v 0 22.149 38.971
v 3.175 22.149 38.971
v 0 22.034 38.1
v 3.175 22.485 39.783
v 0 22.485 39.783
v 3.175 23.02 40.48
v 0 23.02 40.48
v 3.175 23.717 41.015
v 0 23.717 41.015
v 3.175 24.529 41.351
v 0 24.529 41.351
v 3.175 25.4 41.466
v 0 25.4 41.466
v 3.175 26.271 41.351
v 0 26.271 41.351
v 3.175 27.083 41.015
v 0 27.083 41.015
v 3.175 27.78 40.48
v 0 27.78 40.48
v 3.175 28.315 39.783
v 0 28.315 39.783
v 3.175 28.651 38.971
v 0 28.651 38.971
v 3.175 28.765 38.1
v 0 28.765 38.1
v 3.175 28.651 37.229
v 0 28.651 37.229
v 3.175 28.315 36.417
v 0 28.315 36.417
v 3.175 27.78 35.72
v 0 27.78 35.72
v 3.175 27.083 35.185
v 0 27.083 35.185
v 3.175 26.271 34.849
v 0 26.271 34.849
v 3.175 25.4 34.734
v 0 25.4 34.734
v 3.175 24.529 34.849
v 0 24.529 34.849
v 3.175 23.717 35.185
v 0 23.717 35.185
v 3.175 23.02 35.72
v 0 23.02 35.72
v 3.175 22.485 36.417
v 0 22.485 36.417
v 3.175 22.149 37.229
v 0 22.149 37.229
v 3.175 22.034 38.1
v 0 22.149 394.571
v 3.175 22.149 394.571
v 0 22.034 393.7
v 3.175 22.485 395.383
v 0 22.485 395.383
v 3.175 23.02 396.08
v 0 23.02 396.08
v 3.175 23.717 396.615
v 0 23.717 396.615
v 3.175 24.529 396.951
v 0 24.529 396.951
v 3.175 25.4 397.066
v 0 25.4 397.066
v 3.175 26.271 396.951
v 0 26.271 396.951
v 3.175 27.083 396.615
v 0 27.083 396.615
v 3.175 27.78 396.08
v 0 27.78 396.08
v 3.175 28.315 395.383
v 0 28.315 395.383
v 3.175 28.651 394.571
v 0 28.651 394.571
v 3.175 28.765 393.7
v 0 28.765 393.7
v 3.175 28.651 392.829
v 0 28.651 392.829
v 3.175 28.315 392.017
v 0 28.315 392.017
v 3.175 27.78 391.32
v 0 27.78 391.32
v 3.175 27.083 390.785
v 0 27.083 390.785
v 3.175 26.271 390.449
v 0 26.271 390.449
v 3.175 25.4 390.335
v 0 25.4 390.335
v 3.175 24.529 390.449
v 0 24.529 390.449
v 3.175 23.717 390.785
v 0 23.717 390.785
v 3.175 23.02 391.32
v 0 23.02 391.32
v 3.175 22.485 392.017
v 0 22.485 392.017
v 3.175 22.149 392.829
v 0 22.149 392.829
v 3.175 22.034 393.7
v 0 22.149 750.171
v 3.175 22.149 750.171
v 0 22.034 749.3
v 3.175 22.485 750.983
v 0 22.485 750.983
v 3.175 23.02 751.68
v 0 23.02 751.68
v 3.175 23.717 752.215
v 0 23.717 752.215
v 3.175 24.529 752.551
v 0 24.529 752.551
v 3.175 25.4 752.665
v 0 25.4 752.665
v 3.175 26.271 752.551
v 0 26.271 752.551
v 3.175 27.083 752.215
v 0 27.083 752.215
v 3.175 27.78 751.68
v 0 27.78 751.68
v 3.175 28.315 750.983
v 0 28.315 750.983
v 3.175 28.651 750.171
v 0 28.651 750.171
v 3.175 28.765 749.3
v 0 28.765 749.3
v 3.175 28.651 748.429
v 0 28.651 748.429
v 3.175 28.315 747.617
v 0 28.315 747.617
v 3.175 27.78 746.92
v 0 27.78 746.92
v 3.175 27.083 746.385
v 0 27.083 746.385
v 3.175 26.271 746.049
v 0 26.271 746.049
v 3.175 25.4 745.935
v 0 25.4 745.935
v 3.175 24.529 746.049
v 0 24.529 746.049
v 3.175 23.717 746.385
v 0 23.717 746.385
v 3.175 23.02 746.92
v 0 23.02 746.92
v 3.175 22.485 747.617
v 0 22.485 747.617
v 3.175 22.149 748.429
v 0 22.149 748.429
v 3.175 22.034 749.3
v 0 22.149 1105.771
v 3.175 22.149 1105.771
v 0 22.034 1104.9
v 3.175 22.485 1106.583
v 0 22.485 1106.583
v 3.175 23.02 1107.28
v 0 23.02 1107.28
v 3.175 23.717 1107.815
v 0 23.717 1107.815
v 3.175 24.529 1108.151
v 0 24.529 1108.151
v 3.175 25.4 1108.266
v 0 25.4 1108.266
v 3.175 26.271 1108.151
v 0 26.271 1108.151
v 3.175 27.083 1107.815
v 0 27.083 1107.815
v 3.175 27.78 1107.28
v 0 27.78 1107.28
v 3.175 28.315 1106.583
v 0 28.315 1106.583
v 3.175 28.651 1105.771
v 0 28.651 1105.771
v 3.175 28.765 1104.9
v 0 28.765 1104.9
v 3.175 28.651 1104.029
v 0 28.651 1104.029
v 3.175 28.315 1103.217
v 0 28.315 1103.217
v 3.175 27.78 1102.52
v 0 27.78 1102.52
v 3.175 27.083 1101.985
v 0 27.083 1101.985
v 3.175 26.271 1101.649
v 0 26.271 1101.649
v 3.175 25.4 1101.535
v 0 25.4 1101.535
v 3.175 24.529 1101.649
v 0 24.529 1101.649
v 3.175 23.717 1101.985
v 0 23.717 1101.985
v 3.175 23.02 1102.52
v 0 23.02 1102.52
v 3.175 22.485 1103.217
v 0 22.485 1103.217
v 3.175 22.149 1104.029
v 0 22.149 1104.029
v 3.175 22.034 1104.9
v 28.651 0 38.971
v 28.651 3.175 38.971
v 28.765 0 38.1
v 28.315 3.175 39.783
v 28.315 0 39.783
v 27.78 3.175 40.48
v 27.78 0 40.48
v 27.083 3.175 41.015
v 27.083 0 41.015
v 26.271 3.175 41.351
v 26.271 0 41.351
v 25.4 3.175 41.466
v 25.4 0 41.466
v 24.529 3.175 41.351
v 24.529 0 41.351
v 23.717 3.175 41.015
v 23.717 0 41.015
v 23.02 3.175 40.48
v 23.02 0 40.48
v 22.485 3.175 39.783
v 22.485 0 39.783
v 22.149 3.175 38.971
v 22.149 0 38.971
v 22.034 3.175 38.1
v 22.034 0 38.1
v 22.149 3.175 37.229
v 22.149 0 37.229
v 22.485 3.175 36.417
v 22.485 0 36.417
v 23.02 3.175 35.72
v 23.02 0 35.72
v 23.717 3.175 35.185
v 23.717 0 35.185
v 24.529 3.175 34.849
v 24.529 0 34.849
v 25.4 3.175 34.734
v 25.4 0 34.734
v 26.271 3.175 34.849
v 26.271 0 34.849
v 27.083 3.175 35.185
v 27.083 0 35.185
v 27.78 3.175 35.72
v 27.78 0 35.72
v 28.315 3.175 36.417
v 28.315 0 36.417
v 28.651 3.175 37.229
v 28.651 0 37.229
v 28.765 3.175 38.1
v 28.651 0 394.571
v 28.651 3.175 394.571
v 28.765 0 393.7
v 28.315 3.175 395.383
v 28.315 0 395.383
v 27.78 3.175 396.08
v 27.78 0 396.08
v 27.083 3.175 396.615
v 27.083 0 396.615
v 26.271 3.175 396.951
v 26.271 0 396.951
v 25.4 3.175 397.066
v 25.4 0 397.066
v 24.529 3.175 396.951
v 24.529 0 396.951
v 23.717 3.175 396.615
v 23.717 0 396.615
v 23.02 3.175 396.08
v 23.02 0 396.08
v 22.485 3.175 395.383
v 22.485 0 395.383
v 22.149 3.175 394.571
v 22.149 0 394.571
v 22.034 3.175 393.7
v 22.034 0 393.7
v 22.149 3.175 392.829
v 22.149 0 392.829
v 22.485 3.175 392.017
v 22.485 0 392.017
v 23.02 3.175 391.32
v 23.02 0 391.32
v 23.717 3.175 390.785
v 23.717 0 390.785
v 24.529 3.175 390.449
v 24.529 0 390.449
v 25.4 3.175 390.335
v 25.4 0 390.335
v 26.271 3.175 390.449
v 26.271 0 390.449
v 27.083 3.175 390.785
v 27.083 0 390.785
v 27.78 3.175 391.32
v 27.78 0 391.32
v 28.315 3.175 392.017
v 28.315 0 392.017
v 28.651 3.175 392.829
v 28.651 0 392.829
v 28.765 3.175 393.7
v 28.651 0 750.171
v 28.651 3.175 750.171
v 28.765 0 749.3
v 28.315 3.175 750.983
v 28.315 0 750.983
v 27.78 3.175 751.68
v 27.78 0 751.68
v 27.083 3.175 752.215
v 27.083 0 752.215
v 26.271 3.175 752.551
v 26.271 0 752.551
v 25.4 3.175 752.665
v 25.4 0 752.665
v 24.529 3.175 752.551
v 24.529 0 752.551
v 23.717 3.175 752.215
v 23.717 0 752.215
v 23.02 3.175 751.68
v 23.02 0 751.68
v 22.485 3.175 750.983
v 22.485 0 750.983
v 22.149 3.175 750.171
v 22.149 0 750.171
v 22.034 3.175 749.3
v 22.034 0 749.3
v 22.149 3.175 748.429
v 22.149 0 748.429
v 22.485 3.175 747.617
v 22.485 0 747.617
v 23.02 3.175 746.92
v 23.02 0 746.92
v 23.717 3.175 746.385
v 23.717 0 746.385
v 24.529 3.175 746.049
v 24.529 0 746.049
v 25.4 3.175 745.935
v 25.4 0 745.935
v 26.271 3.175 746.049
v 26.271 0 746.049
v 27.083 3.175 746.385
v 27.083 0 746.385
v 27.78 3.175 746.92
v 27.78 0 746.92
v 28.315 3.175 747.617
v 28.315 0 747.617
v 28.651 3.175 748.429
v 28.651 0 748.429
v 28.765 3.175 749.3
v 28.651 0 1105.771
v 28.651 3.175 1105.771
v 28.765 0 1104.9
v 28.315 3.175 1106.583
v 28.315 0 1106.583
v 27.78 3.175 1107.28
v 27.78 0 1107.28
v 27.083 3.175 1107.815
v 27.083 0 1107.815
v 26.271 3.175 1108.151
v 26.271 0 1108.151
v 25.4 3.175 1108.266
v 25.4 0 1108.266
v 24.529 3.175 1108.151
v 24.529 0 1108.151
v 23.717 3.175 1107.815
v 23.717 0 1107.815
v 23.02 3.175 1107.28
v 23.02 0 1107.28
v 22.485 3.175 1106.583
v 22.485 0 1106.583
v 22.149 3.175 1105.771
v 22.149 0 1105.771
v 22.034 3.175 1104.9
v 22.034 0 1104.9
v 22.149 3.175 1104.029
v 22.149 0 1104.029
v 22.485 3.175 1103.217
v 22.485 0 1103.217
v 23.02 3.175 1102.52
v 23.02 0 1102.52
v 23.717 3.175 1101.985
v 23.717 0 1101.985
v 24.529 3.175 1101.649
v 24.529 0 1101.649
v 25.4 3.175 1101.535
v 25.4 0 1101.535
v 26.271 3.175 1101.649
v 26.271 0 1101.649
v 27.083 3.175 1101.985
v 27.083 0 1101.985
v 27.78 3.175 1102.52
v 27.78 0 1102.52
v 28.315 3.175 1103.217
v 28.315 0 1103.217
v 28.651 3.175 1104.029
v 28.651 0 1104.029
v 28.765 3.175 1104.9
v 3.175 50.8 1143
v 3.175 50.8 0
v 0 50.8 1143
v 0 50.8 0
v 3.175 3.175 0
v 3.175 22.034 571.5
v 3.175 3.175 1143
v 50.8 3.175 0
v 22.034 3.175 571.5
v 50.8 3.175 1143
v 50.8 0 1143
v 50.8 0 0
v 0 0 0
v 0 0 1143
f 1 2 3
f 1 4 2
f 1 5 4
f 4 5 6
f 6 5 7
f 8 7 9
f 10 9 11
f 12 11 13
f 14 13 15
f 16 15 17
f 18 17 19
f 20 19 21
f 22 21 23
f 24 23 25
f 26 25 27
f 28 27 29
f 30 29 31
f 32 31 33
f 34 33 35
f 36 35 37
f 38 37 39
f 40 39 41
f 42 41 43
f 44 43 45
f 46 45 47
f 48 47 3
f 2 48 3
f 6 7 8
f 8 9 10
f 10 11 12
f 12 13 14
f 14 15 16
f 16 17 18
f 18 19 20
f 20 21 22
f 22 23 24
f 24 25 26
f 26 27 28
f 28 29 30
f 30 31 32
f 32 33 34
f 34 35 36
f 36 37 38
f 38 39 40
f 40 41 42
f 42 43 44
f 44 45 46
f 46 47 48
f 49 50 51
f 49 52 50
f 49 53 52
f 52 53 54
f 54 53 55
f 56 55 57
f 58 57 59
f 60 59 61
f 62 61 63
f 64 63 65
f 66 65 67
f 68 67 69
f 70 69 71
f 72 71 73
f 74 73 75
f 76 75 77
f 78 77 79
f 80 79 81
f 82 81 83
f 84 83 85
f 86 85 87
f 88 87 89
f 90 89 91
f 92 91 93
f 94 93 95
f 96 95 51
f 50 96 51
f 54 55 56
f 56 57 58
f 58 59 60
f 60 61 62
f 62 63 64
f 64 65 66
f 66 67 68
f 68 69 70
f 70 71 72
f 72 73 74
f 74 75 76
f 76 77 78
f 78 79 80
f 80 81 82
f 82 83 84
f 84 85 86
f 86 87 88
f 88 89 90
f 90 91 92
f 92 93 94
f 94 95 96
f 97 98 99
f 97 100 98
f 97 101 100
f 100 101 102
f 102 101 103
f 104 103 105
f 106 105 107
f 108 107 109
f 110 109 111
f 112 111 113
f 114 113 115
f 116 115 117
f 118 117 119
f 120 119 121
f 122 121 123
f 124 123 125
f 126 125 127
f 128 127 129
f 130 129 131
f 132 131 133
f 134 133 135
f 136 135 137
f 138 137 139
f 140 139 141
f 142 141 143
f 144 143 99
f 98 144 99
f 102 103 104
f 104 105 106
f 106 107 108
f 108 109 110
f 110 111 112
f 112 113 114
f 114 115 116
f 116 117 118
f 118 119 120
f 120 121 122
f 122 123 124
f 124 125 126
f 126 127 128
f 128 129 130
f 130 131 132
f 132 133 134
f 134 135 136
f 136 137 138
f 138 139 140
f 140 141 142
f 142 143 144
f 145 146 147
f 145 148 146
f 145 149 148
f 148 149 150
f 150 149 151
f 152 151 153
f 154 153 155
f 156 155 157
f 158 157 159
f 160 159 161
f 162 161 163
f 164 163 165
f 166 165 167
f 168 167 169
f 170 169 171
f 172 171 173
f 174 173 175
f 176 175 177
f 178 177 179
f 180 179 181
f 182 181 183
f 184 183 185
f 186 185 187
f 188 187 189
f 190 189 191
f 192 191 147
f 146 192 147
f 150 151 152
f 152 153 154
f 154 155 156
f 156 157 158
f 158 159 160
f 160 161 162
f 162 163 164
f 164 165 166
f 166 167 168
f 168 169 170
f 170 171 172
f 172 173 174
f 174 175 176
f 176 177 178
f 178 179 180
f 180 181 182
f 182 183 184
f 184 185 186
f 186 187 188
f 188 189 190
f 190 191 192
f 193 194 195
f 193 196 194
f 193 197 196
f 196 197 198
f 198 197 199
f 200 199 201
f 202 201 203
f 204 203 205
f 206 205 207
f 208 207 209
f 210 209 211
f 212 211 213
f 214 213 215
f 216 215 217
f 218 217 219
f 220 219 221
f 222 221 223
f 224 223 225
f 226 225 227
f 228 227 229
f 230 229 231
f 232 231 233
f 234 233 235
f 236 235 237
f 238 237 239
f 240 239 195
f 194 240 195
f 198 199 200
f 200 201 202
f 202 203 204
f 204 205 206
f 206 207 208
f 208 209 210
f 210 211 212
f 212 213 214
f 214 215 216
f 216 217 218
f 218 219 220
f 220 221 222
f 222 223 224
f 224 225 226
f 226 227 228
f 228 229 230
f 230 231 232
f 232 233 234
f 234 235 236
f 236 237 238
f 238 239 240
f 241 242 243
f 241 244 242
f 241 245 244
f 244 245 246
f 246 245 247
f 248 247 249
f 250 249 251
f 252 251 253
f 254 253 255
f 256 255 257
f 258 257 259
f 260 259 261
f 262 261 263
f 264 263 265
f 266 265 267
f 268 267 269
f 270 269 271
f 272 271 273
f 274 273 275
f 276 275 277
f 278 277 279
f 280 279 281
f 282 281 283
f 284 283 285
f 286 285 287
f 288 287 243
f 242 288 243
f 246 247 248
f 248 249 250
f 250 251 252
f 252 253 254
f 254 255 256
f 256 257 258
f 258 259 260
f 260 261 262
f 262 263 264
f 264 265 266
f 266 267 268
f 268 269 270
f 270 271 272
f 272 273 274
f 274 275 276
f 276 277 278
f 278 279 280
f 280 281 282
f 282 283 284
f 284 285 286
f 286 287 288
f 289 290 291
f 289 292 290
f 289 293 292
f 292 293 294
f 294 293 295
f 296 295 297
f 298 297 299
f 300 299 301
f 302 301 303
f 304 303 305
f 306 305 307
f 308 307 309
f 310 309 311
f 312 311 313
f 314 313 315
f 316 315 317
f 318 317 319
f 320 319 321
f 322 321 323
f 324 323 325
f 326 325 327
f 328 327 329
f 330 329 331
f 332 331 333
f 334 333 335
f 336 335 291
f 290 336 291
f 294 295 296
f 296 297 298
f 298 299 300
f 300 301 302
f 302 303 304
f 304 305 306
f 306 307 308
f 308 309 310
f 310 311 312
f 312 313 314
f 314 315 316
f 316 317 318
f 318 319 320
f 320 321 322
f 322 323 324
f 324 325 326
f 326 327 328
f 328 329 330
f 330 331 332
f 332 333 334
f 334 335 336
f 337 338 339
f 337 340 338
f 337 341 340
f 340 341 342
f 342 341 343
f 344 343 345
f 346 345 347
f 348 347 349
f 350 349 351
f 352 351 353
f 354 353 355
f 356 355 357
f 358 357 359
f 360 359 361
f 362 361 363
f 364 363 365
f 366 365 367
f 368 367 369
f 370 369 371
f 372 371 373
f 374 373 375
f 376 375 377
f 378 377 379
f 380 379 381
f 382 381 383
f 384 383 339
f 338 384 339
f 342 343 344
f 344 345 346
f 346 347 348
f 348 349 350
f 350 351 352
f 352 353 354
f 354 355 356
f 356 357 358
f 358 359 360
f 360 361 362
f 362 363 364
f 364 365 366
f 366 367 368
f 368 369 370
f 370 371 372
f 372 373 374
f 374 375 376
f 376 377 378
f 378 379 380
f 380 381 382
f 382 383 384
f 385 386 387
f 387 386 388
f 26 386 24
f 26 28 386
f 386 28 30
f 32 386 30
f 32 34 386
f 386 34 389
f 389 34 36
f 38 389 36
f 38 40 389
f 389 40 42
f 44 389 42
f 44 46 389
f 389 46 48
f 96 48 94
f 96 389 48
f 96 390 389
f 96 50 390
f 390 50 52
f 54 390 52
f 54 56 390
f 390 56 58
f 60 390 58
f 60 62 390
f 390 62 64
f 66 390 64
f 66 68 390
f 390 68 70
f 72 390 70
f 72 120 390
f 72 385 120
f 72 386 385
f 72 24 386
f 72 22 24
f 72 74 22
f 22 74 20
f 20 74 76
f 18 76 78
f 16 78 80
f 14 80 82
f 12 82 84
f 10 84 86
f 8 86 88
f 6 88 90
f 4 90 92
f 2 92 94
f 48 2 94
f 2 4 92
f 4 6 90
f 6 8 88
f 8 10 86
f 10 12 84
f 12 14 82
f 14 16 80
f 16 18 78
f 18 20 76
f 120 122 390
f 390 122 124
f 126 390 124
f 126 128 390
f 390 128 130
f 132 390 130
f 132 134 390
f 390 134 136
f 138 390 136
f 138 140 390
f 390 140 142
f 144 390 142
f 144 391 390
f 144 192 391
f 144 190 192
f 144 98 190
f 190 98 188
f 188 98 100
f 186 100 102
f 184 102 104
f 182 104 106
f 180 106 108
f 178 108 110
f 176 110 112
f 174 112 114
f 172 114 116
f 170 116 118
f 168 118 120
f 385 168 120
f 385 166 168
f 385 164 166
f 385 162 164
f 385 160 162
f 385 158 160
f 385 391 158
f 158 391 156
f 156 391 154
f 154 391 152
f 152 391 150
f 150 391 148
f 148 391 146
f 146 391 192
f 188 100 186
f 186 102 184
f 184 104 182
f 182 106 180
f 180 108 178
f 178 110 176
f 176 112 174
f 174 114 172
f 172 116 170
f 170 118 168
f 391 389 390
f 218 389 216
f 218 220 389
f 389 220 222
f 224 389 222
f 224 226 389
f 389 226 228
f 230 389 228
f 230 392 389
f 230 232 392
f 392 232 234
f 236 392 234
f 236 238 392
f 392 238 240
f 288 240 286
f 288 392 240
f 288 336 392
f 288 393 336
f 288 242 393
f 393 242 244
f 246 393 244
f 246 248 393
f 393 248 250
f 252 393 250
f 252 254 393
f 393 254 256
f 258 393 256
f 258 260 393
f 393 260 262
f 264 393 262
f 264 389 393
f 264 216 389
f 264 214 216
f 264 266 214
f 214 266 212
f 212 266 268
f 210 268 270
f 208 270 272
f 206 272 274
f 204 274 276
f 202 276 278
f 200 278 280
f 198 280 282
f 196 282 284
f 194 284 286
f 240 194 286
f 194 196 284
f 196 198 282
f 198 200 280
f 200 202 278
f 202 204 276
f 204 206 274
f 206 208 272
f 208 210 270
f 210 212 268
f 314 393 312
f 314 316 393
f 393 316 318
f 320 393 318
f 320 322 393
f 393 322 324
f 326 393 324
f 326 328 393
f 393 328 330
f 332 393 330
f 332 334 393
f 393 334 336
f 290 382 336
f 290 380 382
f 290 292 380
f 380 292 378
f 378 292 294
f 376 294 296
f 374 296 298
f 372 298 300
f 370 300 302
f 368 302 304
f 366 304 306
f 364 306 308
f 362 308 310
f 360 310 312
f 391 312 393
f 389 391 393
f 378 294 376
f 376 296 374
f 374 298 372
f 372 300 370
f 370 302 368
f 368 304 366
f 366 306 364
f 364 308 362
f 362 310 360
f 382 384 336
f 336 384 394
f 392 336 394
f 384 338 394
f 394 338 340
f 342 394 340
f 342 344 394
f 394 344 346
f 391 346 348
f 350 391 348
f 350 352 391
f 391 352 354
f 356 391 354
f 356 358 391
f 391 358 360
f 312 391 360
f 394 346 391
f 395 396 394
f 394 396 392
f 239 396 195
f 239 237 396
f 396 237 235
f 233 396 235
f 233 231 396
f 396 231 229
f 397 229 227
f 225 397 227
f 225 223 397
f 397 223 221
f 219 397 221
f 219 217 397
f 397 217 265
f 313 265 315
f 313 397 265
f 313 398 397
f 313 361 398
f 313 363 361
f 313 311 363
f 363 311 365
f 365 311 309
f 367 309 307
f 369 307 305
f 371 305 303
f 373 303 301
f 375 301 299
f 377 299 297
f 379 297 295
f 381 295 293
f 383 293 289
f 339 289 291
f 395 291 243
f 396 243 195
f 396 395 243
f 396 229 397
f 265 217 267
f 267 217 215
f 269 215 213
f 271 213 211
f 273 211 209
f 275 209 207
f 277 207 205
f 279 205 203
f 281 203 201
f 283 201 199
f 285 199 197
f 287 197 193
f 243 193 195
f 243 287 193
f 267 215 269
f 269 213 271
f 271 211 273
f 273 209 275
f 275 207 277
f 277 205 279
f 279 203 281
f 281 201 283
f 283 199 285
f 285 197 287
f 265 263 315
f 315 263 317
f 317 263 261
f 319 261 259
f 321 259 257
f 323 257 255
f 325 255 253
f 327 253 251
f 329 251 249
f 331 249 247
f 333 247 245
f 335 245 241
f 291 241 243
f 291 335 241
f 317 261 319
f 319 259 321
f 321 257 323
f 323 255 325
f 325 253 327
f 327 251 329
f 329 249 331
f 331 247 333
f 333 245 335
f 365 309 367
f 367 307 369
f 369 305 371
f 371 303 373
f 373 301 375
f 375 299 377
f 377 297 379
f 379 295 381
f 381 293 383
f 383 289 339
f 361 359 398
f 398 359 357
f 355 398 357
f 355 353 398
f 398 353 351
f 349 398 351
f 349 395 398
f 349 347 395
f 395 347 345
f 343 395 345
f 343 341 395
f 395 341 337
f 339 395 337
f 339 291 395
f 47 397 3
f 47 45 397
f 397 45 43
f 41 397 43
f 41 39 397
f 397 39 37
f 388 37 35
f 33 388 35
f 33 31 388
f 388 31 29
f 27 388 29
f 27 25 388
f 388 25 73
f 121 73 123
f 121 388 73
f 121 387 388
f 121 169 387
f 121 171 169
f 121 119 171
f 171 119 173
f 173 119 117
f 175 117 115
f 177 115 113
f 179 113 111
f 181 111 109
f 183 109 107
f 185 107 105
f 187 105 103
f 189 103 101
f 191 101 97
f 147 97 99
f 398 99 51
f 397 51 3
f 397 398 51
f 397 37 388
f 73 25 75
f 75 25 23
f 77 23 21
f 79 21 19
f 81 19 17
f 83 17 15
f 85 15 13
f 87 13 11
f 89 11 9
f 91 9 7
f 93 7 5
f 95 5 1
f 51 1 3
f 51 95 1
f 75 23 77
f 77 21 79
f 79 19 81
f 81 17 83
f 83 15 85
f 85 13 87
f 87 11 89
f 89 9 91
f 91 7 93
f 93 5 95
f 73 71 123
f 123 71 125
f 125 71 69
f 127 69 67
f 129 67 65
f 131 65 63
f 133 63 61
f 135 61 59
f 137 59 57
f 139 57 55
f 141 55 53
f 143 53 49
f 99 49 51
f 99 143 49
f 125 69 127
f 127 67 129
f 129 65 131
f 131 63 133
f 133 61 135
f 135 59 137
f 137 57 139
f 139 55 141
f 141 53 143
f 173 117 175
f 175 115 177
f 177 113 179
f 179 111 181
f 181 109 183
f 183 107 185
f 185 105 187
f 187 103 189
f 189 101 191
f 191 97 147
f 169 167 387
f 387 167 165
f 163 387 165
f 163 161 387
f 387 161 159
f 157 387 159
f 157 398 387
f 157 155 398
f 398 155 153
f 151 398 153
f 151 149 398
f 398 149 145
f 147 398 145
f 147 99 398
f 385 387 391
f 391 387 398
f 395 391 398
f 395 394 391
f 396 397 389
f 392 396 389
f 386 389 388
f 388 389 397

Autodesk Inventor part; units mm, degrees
ref_plane "YZ Plane" through (0, 0, 0) normal (1, 0, 0) x (0, 1, 0)
ref_plane "XZ Plane" through (0, 0, 0) normal (0, 1, 0) x (-1, 0, 0)
ref_plane "XY Plane" through (0, 0, 0) normal (0, 0, 1) x (1, 0, 0)
sketch "Sketch1" plane through (0, 0, 0) normal (0, 0, 1) x (1, 0, 0)
  line L0 (0, 0) -> (0, 50.8)
  line L1 (0, 50.8) -> (3.175, 50.8)
  line L2 (3.175, 50.8) -> (3.175, 3.175)
  line L3 (3.175, 3.175) -> (50.8, 3.175)
  line L4 (50.8, 3.175) -> (50.8, 0)
  line L5 (50.8, 0) -> (0, 0)
  dimension "d0" = 50.8
  dimension "d1" = 3.175
  dimension "d4" = 50.8
extrude "Extrusion1" add sketch "Sketch1" along normal blind 1143
hole "Hole1" at (25.4, 3.175, 1104.9) direction (0, -1, 0) diameter 6.731 depth 25.4 tip angle 118
pattern_linear "Rectangular Pattern1" count 4 spacing 355.6 along (0, 0, -1) of "Hole1"
hole "Hole2" at (3.175, 25.4, 1104.9) direction (-1, 0, 0) diameter 6.731 depth 25.4 tip angle 118
pattern_linear "Rectangular Pattern2" count 4 spacing 355.6 along (0, 0, -1) of "Hole2", "Hole1"
properties part number "GE-12063"
